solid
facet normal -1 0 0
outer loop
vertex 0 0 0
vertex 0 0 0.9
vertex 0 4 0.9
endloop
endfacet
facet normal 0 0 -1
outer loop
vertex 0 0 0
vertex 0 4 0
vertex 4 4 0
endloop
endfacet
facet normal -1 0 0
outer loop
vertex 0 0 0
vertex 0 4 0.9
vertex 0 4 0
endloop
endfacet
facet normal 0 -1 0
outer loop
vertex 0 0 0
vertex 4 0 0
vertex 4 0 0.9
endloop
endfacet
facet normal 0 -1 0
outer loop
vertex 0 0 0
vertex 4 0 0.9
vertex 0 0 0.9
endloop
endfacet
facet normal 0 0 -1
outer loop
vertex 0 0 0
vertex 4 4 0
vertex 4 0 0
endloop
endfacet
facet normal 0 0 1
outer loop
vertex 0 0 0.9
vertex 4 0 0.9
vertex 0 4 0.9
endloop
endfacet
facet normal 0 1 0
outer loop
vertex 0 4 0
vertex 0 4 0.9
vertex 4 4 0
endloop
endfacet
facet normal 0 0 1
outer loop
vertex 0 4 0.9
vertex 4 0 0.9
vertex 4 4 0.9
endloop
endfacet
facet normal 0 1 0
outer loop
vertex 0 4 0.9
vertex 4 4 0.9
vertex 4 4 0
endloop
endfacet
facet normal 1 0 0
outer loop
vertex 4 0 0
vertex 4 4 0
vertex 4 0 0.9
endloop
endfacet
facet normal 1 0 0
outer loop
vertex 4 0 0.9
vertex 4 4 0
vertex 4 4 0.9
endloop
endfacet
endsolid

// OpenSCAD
/* Warning, this is a very basic generator with a lot of approximation 
input data : [VQFN, RKB, 4x4x0.9mm, 32, , A, C04-21385A]
generated by com.zoubworld.electronics.cad.model3d.Basic
Date : Sun Feb 15 10:50:49 CET 2026
*/

//body
color("black")
translate([0,0,0])
cube([4.0,4.0,0.9], center=false);
